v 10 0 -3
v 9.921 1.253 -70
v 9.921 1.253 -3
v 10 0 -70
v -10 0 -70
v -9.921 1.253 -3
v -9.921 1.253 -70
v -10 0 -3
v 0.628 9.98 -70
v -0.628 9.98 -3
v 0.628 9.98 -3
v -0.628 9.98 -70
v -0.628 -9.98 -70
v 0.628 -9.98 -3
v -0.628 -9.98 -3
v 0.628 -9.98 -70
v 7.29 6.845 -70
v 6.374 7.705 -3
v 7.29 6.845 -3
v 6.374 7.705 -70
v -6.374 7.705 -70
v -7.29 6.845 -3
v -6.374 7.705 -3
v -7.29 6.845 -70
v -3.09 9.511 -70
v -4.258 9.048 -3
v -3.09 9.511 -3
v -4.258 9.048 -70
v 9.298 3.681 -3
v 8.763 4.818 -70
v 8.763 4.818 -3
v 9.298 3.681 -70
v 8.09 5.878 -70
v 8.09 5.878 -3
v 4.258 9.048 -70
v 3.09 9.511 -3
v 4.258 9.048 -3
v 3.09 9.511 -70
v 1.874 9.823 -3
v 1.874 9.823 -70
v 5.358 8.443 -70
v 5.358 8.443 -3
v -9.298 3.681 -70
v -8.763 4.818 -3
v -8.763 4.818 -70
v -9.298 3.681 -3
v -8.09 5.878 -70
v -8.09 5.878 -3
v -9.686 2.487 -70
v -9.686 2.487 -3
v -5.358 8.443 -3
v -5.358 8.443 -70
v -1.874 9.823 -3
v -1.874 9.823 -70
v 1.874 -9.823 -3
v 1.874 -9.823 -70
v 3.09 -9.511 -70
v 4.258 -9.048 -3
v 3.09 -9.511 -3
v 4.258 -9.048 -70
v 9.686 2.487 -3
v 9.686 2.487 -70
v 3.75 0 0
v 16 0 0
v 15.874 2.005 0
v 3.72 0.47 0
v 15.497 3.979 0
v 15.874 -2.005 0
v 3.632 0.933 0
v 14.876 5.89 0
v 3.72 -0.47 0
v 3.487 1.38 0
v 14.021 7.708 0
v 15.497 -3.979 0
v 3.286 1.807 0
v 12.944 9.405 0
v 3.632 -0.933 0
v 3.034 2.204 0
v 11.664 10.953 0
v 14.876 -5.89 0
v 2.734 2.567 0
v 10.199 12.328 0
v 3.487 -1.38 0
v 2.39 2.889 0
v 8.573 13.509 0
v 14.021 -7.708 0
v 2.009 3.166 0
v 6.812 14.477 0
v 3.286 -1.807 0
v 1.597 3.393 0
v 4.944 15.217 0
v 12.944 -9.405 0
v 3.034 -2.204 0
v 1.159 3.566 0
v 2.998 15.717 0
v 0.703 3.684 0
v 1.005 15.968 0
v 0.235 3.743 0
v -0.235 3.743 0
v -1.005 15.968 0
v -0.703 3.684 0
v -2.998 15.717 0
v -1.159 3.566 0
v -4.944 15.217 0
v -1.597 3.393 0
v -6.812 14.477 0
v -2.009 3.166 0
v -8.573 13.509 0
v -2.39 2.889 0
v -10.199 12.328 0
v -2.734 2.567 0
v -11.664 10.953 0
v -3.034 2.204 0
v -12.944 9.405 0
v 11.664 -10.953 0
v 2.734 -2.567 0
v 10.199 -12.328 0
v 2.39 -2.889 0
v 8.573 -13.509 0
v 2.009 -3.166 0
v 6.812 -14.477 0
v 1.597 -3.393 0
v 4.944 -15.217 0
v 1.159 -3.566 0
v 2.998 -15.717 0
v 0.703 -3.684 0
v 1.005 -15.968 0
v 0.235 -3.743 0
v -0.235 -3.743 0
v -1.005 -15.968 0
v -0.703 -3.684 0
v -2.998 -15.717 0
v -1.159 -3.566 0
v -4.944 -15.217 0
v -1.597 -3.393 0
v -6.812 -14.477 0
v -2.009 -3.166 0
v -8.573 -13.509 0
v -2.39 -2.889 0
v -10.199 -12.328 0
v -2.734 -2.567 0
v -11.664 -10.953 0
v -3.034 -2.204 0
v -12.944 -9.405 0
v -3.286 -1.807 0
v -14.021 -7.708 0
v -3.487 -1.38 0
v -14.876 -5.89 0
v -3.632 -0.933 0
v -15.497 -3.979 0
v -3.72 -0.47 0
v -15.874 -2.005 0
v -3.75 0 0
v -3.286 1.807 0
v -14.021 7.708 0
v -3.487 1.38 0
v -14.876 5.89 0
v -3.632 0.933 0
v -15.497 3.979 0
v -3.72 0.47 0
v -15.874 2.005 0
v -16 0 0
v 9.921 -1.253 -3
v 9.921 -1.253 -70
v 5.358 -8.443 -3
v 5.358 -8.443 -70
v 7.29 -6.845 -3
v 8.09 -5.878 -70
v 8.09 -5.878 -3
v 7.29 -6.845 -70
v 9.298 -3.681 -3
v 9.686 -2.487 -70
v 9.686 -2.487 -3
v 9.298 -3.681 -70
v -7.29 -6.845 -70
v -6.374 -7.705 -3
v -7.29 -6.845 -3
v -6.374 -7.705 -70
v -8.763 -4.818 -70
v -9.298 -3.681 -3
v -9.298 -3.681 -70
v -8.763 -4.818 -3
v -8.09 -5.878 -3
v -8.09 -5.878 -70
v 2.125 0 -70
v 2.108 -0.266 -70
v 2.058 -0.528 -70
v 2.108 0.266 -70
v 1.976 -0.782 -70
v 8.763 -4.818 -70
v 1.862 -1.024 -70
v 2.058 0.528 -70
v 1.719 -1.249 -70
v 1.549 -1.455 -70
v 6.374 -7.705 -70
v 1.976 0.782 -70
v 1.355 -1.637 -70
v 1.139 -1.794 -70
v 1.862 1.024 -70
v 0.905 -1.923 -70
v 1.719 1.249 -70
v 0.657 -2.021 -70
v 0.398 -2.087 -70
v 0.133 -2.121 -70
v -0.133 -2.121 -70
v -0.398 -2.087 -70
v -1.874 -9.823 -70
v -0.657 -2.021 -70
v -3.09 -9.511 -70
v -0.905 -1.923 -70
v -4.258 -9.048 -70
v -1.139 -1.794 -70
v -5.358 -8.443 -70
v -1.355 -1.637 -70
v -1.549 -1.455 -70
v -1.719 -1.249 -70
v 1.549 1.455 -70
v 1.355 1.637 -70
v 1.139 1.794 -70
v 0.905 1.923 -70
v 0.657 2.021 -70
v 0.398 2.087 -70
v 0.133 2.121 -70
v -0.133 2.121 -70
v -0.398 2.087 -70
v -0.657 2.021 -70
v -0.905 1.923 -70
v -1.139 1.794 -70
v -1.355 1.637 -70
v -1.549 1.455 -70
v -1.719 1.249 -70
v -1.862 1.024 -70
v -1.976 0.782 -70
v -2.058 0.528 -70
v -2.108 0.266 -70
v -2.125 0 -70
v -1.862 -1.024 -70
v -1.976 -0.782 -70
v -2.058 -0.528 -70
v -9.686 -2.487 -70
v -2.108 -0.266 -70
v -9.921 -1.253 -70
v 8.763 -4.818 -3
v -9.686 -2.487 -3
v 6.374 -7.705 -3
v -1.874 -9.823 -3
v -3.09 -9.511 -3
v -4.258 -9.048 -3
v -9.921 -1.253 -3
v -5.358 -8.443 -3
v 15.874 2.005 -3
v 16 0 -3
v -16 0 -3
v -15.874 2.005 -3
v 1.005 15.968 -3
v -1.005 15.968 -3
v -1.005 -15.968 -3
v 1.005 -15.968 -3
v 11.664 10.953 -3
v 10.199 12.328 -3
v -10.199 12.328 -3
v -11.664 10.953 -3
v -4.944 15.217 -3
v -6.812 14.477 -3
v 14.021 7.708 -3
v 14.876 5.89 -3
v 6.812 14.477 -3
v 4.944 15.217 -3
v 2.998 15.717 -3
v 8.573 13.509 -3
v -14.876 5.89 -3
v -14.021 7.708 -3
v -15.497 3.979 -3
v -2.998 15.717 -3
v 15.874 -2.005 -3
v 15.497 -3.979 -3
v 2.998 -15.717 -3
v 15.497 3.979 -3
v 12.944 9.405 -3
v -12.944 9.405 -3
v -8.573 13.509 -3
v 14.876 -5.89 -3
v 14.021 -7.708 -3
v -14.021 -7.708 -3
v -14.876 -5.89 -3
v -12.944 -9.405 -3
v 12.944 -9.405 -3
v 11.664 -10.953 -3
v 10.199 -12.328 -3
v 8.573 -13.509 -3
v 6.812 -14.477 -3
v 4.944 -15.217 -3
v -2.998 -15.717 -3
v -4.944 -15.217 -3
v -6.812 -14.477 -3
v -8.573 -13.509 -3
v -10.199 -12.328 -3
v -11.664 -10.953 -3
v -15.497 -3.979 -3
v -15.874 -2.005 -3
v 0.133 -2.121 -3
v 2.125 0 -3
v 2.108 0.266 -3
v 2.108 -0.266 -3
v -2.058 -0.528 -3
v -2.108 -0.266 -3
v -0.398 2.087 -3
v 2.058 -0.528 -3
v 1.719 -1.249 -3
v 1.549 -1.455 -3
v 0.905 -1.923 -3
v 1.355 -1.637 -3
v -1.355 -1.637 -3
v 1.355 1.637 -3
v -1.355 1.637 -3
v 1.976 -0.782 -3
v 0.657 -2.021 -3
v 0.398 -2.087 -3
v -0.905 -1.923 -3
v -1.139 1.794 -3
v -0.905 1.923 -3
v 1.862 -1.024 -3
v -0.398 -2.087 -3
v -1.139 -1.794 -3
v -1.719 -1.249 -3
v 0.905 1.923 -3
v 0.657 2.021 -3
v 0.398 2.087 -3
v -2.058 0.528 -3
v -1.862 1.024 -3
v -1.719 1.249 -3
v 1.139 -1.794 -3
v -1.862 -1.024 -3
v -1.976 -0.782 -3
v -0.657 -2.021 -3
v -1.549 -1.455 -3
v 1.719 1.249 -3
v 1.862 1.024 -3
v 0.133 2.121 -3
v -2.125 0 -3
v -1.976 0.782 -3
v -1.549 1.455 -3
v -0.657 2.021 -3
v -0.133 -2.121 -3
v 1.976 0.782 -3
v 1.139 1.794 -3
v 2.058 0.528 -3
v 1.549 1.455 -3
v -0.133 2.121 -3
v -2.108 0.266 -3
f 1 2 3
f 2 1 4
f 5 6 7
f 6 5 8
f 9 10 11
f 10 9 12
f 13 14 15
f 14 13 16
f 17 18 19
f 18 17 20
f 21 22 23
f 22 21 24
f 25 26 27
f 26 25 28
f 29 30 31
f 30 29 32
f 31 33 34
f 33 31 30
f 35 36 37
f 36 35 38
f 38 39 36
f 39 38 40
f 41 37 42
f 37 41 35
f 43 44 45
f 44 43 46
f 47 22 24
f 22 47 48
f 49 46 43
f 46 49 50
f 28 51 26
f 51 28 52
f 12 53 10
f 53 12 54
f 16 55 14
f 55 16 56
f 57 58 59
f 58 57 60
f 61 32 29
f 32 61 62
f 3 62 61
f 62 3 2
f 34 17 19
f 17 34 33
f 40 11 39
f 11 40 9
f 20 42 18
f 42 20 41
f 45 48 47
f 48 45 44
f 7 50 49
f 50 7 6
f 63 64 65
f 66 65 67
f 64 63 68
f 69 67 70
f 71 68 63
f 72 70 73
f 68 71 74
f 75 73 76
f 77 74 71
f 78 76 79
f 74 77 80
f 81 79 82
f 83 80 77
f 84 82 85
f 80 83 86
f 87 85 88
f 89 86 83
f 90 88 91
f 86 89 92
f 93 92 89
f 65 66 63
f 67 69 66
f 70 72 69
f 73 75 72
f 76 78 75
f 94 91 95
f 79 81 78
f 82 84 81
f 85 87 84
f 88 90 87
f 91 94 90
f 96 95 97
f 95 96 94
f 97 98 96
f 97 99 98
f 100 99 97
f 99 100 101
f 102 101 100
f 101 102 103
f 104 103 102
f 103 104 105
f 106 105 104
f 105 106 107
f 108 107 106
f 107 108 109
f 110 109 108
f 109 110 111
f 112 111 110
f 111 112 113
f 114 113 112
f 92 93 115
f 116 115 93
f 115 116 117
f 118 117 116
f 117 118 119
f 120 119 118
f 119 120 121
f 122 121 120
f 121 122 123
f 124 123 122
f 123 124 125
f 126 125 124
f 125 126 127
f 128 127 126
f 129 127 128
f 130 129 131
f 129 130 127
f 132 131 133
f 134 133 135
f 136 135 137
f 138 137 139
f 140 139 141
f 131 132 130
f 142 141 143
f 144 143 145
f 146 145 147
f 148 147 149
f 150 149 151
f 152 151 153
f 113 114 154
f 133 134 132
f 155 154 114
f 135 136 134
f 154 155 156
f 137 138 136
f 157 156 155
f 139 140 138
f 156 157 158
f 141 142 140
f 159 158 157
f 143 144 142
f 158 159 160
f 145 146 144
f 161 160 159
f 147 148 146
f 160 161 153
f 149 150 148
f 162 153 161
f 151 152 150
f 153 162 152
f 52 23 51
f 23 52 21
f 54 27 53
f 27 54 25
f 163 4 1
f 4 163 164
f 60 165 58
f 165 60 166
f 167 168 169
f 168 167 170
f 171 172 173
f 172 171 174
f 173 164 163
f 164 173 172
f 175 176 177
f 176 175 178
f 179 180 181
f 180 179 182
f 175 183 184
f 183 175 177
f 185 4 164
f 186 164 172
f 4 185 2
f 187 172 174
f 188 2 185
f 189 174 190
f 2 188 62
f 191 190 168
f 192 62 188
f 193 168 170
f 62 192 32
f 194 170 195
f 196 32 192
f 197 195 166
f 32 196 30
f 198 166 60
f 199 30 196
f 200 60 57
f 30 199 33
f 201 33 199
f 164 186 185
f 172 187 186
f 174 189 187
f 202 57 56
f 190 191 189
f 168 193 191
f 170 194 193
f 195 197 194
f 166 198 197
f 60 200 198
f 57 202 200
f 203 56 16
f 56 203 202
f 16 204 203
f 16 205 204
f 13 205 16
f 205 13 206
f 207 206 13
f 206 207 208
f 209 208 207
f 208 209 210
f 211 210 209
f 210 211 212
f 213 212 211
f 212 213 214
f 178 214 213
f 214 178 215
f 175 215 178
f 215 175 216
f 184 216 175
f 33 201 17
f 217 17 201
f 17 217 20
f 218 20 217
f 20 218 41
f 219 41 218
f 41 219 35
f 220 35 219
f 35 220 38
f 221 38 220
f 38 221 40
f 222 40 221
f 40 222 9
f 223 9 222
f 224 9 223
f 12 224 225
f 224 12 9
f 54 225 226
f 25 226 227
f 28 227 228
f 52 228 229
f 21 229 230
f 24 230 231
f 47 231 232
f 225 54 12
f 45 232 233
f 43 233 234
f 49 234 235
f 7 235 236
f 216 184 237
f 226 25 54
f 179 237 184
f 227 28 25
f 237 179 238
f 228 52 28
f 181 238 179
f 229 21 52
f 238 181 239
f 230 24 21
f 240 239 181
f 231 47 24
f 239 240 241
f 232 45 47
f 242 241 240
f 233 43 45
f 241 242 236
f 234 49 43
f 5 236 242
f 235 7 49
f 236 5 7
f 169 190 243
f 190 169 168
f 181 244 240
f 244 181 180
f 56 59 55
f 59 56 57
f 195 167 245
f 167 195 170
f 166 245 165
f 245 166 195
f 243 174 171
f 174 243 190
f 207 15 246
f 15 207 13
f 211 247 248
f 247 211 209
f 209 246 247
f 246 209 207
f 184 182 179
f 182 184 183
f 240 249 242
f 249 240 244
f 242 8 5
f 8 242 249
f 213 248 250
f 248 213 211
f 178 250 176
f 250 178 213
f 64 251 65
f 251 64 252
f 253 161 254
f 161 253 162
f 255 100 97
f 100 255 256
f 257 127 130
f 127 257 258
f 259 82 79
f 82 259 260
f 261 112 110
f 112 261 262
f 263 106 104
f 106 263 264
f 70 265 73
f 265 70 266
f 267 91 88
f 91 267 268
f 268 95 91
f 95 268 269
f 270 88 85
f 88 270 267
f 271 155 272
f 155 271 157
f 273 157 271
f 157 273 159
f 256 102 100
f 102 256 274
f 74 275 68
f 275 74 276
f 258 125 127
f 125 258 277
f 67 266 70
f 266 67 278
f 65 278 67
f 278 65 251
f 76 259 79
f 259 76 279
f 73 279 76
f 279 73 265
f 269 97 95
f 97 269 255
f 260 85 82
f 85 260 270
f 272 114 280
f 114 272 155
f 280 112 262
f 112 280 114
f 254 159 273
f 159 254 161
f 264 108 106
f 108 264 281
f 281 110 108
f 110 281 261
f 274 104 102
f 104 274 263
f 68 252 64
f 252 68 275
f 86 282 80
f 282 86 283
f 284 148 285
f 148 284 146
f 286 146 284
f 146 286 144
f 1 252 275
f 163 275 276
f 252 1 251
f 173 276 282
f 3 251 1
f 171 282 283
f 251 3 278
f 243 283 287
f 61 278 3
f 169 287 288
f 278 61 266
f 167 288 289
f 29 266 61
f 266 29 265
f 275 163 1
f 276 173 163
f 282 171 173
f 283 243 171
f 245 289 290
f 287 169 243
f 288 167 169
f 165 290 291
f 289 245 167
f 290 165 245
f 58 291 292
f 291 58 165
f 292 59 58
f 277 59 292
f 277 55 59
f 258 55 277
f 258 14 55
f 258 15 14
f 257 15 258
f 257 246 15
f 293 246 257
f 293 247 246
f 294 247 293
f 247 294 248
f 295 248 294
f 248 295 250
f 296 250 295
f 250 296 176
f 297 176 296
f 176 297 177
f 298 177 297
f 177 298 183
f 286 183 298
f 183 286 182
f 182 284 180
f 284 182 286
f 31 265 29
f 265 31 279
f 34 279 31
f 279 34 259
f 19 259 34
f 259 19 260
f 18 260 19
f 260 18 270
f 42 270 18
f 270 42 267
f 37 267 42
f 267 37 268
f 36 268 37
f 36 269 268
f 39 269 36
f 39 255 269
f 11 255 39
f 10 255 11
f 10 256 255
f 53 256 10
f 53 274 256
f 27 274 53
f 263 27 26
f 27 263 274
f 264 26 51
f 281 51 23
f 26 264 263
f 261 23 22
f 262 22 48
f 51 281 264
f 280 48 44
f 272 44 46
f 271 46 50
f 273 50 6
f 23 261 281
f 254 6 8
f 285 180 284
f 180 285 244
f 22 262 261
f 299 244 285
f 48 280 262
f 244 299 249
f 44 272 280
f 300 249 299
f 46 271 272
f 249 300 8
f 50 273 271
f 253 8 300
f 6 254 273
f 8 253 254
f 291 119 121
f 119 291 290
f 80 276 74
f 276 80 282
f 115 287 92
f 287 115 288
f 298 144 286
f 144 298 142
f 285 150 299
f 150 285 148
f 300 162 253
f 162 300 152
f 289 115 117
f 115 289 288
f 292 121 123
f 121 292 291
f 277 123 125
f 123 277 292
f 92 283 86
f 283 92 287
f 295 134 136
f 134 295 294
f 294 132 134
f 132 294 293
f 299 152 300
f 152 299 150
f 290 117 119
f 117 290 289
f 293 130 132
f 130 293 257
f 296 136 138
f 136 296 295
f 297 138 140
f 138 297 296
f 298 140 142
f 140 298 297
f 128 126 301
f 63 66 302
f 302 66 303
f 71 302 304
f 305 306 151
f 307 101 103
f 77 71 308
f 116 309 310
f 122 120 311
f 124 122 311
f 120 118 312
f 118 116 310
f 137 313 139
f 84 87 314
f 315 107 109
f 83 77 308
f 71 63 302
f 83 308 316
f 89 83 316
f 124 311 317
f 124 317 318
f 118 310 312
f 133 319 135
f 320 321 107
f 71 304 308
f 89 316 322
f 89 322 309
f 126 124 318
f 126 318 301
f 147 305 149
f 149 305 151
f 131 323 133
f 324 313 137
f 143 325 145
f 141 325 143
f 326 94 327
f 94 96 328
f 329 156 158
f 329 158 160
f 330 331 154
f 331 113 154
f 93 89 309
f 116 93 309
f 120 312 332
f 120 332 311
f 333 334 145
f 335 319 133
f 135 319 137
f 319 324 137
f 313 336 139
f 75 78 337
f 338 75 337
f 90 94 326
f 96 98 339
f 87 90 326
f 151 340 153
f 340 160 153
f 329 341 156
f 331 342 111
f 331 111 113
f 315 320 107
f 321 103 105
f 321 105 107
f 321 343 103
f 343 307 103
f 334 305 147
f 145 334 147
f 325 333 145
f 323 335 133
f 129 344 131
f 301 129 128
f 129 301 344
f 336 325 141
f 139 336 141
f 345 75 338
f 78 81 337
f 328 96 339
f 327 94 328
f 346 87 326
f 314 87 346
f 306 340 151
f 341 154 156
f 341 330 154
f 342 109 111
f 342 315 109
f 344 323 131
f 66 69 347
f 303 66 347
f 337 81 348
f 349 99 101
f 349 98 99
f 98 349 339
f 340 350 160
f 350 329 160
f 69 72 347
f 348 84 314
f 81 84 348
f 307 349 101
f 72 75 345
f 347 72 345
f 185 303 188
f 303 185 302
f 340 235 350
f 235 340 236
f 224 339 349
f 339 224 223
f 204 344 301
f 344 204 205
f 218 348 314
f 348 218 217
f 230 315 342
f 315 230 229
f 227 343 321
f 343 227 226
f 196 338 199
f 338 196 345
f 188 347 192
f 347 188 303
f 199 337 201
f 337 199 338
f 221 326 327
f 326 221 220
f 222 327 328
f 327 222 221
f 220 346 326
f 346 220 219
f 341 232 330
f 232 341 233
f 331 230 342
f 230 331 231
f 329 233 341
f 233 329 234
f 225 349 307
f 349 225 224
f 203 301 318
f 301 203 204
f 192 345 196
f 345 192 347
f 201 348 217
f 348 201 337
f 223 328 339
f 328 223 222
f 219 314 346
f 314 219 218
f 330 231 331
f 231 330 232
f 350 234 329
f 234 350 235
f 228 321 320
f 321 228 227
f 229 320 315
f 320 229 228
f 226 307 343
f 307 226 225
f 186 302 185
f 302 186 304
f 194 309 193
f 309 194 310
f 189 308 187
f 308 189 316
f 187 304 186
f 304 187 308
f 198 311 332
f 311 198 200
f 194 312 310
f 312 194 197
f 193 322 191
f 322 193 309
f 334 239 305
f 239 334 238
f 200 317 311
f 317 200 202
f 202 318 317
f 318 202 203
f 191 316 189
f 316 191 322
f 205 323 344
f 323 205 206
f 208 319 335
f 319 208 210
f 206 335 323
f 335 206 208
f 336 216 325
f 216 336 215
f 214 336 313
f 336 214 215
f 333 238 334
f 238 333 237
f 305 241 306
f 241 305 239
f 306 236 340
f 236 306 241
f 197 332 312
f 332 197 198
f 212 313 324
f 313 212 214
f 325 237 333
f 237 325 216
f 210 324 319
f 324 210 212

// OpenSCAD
$fn = 50;


difference() {
	union() {
		translate(v = [0, 0, -70.0000000000]) {
			cylinder(h = 70, r = 10.0000000000);
		}
		translate(v = [0, 0, -3.0000000000]) {
			cylinder(h = 3, r = 16.0000000000);
		}
	}
	union() {
		translate(v = [0, 0, 0]) {
			rotate(a = [0, 0, 0]) {
				difference() {
					union() {
						#translate(v = [0, 0, -70.0000000000]) {
							cylinder(h = 70, r = 2.0000000000);
						}
						#translate(v = [0, 0, -3]) {
							cylinder(h = 3, r = 10.0000000000, r1 = 2.1250000000, r2 = 3.7500000000);
						}
						#translate(v = [0, 0, -70.0000000000]) {
							cylinder(h = 70, r = 2.1250000000);
						}
						#translate(v = [0, 0, -70.0000000000]) {
							cylinder(h = 70, r = 2.0000000000);
						}
					}
					union();
				}
			}
		}
	}
}
